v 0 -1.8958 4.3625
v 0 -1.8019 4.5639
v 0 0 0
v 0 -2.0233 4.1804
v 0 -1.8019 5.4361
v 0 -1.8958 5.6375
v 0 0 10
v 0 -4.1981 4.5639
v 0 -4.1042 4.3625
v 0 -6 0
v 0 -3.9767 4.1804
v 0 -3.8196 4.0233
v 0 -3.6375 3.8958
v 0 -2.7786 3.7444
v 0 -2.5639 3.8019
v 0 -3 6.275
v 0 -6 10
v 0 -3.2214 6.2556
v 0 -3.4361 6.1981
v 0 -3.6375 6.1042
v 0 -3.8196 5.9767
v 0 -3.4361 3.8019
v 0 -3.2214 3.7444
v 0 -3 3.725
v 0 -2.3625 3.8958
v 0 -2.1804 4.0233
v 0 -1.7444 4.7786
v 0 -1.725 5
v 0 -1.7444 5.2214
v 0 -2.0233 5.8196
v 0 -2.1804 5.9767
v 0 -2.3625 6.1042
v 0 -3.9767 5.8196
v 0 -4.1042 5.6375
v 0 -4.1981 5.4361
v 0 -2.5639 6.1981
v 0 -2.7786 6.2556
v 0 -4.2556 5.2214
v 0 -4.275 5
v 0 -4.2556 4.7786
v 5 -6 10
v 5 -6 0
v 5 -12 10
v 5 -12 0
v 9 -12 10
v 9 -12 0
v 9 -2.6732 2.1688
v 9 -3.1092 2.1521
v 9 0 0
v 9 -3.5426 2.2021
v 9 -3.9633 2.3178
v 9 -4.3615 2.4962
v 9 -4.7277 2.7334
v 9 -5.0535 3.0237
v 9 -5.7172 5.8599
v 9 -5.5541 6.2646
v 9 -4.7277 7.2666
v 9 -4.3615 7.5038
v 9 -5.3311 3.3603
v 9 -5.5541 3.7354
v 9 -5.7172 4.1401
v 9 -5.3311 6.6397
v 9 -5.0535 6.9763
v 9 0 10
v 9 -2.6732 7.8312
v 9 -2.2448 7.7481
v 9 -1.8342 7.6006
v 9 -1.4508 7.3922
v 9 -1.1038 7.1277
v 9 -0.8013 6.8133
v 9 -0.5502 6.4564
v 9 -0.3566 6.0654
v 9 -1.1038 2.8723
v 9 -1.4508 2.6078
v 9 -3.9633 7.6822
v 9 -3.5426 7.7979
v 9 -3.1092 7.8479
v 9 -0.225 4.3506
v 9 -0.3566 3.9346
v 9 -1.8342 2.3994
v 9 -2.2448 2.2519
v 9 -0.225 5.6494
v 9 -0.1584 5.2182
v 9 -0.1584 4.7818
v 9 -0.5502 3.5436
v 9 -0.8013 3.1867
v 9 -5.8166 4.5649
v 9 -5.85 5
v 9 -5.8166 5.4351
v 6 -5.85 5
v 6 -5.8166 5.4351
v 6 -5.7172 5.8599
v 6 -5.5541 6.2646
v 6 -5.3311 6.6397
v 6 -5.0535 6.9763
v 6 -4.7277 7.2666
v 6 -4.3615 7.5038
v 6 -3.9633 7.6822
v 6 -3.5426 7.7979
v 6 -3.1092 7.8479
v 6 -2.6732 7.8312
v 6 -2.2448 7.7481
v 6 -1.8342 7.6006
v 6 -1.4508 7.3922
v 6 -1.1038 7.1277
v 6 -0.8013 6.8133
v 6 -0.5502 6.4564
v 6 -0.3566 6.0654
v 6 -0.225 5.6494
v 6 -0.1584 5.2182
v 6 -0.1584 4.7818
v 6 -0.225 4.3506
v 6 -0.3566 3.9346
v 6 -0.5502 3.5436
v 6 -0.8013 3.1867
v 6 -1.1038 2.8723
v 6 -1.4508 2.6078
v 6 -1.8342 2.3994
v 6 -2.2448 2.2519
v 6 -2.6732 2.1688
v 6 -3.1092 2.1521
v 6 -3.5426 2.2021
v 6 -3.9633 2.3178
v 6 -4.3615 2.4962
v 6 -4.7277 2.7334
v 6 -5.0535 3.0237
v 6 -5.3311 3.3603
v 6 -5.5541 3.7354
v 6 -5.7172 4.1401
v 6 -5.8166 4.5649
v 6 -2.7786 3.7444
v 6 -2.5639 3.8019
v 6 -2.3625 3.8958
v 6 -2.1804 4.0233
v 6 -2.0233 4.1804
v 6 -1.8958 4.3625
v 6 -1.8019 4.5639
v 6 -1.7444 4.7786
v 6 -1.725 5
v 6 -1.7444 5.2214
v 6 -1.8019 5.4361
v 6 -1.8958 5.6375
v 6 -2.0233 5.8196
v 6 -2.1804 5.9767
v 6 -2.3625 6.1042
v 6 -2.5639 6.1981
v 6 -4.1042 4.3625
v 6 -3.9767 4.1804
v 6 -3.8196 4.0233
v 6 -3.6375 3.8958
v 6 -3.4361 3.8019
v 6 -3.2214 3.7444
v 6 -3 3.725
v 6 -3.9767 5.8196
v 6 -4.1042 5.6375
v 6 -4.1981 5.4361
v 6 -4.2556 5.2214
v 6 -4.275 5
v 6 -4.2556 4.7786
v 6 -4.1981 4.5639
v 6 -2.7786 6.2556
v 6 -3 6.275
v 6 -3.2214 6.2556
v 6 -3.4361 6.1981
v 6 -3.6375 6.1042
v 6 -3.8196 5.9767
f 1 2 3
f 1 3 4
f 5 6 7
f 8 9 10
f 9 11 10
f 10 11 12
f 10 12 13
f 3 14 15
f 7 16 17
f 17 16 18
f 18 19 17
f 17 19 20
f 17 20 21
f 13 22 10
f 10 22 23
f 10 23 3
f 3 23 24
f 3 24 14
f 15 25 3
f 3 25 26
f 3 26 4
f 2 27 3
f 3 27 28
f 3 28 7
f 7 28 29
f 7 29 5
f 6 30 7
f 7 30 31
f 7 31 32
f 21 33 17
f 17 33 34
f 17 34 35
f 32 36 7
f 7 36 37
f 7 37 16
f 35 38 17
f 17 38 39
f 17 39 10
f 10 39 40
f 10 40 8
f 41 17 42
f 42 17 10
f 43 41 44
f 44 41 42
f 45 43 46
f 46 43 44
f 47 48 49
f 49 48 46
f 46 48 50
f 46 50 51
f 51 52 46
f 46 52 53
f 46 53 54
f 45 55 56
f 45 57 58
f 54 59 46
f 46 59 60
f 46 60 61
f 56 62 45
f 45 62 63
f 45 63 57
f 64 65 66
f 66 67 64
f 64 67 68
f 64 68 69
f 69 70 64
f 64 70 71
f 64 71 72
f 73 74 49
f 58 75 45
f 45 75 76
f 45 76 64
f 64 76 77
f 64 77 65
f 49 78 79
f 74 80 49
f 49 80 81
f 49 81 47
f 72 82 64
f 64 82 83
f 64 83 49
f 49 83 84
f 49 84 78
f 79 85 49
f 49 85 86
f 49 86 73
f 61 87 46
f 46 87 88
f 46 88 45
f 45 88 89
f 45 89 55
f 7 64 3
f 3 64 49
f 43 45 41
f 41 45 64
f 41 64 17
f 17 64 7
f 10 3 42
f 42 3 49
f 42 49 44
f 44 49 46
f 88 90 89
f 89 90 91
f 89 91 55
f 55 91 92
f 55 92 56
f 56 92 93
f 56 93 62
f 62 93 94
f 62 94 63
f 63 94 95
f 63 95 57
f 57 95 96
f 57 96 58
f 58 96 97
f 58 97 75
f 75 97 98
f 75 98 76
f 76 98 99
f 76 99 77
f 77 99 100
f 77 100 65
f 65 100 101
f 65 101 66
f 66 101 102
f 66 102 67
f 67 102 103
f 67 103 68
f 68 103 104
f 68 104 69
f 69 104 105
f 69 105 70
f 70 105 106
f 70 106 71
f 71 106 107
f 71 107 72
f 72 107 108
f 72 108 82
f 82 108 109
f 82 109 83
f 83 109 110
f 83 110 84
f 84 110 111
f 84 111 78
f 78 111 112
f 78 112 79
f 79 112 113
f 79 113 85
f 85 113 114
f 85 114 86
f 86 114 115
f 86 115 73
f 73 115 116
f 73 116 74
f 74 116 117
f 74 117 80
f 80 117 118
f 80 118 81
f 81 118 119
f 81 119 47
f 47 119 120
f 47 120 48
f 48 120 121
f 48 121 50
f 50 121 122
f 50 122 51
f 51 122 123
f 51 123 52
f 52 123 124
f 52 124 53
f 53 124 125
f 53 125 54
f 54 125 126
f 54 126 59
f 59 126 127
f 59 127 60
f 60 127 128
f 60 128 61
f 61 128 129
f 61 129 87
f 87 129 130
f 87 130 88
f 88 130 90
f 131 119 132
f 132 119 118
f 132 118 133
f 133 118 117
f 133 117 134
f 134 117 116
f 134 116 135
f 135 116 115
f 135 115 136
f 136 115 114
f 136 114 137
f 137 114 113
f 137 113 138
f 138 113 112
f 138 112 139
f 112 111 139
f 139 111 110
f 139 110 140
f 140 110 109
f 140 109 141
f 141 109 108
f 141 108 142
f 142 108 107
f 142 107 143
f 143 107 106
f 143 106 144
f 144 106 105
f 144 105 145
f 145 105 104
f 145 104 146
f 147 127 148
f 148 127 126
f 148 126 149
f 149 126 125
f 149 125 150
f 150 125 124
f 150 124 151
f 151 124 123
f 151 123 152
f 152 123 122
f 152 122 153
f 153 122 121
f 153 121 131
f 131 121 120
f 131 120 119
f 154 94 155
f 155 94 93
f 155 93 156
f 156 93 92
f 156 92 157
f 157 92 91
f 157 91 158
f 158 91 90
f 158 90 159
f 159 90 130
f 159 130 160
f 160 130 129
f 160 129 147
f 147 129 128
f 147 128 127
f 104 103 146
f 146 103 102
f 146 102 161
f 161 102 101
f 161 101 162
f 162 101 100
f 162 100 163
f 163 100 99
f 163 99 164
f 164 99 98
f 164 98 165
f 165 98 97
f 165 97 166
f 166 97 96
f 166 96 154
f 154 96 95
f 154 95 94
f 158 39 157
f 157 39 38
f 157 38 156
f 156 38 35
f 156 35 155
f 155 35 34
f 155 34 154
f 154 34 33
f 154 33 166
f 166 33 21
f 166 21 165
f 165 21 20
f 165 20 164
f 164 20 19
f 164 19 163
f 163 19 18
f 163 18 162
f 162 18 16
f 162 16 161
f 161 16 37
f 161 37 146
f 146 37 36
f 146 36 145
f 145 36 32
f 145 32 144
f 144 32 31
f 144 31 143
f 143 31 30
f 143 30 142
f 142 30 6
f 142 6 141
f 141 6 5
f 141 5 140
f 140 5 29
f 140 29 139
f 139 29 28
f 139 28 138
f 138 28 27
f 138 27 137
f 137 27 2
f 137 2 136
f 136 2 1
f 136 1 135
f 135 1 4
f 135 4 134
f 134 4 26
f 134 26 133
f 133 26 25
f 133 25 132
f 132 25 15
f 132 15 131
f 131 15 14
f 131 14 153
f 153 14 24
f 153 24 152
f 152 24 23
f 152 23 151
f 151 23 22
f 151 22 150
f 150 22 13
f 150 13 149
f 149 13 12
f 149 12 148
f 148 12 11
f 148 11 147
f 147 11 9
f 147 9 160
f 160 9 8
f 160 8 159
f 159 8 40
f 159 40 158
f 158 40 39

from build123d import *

# Parameters (mm, degrees)
BOSS_EXTRUDE1_DEPTH = 10


with BuildPart() as part:
    # Sketch1 → Boss-Extrude1 (new body)
    with BuildSketch(Plane.XY):
        Polygon((0, 0), (9, 0), (9, -12), (5, -12), (5, -6), (0, -6), align=None)
    extrude(amount=BOSS_EXTRUDE1_DEPTH)

    # Sketch4 → Cut-Revolve2 (revolve, cut)
    with BuildSketch(Plane(origin=(0, -3, 0), x_dir=(1, 0, 0), z_dir=(0, 1, 0)), mode=Mode.PRIVATE) as cut_revolve2_sk:
        Polygon((0, -5), (9, -5), (9, -2.15), (6, -2.15), (6, -3.725), (0, -3.725), align=None)
    revolve(cut_revolve2_sk.sketch.rotate(Axis((0, -3, 5), (1, 0, 0)), 270), axis=Axis((0, -3, 5), (1, 0, 0)), mode=Mode.SUBTRACT)


solid = part.part
